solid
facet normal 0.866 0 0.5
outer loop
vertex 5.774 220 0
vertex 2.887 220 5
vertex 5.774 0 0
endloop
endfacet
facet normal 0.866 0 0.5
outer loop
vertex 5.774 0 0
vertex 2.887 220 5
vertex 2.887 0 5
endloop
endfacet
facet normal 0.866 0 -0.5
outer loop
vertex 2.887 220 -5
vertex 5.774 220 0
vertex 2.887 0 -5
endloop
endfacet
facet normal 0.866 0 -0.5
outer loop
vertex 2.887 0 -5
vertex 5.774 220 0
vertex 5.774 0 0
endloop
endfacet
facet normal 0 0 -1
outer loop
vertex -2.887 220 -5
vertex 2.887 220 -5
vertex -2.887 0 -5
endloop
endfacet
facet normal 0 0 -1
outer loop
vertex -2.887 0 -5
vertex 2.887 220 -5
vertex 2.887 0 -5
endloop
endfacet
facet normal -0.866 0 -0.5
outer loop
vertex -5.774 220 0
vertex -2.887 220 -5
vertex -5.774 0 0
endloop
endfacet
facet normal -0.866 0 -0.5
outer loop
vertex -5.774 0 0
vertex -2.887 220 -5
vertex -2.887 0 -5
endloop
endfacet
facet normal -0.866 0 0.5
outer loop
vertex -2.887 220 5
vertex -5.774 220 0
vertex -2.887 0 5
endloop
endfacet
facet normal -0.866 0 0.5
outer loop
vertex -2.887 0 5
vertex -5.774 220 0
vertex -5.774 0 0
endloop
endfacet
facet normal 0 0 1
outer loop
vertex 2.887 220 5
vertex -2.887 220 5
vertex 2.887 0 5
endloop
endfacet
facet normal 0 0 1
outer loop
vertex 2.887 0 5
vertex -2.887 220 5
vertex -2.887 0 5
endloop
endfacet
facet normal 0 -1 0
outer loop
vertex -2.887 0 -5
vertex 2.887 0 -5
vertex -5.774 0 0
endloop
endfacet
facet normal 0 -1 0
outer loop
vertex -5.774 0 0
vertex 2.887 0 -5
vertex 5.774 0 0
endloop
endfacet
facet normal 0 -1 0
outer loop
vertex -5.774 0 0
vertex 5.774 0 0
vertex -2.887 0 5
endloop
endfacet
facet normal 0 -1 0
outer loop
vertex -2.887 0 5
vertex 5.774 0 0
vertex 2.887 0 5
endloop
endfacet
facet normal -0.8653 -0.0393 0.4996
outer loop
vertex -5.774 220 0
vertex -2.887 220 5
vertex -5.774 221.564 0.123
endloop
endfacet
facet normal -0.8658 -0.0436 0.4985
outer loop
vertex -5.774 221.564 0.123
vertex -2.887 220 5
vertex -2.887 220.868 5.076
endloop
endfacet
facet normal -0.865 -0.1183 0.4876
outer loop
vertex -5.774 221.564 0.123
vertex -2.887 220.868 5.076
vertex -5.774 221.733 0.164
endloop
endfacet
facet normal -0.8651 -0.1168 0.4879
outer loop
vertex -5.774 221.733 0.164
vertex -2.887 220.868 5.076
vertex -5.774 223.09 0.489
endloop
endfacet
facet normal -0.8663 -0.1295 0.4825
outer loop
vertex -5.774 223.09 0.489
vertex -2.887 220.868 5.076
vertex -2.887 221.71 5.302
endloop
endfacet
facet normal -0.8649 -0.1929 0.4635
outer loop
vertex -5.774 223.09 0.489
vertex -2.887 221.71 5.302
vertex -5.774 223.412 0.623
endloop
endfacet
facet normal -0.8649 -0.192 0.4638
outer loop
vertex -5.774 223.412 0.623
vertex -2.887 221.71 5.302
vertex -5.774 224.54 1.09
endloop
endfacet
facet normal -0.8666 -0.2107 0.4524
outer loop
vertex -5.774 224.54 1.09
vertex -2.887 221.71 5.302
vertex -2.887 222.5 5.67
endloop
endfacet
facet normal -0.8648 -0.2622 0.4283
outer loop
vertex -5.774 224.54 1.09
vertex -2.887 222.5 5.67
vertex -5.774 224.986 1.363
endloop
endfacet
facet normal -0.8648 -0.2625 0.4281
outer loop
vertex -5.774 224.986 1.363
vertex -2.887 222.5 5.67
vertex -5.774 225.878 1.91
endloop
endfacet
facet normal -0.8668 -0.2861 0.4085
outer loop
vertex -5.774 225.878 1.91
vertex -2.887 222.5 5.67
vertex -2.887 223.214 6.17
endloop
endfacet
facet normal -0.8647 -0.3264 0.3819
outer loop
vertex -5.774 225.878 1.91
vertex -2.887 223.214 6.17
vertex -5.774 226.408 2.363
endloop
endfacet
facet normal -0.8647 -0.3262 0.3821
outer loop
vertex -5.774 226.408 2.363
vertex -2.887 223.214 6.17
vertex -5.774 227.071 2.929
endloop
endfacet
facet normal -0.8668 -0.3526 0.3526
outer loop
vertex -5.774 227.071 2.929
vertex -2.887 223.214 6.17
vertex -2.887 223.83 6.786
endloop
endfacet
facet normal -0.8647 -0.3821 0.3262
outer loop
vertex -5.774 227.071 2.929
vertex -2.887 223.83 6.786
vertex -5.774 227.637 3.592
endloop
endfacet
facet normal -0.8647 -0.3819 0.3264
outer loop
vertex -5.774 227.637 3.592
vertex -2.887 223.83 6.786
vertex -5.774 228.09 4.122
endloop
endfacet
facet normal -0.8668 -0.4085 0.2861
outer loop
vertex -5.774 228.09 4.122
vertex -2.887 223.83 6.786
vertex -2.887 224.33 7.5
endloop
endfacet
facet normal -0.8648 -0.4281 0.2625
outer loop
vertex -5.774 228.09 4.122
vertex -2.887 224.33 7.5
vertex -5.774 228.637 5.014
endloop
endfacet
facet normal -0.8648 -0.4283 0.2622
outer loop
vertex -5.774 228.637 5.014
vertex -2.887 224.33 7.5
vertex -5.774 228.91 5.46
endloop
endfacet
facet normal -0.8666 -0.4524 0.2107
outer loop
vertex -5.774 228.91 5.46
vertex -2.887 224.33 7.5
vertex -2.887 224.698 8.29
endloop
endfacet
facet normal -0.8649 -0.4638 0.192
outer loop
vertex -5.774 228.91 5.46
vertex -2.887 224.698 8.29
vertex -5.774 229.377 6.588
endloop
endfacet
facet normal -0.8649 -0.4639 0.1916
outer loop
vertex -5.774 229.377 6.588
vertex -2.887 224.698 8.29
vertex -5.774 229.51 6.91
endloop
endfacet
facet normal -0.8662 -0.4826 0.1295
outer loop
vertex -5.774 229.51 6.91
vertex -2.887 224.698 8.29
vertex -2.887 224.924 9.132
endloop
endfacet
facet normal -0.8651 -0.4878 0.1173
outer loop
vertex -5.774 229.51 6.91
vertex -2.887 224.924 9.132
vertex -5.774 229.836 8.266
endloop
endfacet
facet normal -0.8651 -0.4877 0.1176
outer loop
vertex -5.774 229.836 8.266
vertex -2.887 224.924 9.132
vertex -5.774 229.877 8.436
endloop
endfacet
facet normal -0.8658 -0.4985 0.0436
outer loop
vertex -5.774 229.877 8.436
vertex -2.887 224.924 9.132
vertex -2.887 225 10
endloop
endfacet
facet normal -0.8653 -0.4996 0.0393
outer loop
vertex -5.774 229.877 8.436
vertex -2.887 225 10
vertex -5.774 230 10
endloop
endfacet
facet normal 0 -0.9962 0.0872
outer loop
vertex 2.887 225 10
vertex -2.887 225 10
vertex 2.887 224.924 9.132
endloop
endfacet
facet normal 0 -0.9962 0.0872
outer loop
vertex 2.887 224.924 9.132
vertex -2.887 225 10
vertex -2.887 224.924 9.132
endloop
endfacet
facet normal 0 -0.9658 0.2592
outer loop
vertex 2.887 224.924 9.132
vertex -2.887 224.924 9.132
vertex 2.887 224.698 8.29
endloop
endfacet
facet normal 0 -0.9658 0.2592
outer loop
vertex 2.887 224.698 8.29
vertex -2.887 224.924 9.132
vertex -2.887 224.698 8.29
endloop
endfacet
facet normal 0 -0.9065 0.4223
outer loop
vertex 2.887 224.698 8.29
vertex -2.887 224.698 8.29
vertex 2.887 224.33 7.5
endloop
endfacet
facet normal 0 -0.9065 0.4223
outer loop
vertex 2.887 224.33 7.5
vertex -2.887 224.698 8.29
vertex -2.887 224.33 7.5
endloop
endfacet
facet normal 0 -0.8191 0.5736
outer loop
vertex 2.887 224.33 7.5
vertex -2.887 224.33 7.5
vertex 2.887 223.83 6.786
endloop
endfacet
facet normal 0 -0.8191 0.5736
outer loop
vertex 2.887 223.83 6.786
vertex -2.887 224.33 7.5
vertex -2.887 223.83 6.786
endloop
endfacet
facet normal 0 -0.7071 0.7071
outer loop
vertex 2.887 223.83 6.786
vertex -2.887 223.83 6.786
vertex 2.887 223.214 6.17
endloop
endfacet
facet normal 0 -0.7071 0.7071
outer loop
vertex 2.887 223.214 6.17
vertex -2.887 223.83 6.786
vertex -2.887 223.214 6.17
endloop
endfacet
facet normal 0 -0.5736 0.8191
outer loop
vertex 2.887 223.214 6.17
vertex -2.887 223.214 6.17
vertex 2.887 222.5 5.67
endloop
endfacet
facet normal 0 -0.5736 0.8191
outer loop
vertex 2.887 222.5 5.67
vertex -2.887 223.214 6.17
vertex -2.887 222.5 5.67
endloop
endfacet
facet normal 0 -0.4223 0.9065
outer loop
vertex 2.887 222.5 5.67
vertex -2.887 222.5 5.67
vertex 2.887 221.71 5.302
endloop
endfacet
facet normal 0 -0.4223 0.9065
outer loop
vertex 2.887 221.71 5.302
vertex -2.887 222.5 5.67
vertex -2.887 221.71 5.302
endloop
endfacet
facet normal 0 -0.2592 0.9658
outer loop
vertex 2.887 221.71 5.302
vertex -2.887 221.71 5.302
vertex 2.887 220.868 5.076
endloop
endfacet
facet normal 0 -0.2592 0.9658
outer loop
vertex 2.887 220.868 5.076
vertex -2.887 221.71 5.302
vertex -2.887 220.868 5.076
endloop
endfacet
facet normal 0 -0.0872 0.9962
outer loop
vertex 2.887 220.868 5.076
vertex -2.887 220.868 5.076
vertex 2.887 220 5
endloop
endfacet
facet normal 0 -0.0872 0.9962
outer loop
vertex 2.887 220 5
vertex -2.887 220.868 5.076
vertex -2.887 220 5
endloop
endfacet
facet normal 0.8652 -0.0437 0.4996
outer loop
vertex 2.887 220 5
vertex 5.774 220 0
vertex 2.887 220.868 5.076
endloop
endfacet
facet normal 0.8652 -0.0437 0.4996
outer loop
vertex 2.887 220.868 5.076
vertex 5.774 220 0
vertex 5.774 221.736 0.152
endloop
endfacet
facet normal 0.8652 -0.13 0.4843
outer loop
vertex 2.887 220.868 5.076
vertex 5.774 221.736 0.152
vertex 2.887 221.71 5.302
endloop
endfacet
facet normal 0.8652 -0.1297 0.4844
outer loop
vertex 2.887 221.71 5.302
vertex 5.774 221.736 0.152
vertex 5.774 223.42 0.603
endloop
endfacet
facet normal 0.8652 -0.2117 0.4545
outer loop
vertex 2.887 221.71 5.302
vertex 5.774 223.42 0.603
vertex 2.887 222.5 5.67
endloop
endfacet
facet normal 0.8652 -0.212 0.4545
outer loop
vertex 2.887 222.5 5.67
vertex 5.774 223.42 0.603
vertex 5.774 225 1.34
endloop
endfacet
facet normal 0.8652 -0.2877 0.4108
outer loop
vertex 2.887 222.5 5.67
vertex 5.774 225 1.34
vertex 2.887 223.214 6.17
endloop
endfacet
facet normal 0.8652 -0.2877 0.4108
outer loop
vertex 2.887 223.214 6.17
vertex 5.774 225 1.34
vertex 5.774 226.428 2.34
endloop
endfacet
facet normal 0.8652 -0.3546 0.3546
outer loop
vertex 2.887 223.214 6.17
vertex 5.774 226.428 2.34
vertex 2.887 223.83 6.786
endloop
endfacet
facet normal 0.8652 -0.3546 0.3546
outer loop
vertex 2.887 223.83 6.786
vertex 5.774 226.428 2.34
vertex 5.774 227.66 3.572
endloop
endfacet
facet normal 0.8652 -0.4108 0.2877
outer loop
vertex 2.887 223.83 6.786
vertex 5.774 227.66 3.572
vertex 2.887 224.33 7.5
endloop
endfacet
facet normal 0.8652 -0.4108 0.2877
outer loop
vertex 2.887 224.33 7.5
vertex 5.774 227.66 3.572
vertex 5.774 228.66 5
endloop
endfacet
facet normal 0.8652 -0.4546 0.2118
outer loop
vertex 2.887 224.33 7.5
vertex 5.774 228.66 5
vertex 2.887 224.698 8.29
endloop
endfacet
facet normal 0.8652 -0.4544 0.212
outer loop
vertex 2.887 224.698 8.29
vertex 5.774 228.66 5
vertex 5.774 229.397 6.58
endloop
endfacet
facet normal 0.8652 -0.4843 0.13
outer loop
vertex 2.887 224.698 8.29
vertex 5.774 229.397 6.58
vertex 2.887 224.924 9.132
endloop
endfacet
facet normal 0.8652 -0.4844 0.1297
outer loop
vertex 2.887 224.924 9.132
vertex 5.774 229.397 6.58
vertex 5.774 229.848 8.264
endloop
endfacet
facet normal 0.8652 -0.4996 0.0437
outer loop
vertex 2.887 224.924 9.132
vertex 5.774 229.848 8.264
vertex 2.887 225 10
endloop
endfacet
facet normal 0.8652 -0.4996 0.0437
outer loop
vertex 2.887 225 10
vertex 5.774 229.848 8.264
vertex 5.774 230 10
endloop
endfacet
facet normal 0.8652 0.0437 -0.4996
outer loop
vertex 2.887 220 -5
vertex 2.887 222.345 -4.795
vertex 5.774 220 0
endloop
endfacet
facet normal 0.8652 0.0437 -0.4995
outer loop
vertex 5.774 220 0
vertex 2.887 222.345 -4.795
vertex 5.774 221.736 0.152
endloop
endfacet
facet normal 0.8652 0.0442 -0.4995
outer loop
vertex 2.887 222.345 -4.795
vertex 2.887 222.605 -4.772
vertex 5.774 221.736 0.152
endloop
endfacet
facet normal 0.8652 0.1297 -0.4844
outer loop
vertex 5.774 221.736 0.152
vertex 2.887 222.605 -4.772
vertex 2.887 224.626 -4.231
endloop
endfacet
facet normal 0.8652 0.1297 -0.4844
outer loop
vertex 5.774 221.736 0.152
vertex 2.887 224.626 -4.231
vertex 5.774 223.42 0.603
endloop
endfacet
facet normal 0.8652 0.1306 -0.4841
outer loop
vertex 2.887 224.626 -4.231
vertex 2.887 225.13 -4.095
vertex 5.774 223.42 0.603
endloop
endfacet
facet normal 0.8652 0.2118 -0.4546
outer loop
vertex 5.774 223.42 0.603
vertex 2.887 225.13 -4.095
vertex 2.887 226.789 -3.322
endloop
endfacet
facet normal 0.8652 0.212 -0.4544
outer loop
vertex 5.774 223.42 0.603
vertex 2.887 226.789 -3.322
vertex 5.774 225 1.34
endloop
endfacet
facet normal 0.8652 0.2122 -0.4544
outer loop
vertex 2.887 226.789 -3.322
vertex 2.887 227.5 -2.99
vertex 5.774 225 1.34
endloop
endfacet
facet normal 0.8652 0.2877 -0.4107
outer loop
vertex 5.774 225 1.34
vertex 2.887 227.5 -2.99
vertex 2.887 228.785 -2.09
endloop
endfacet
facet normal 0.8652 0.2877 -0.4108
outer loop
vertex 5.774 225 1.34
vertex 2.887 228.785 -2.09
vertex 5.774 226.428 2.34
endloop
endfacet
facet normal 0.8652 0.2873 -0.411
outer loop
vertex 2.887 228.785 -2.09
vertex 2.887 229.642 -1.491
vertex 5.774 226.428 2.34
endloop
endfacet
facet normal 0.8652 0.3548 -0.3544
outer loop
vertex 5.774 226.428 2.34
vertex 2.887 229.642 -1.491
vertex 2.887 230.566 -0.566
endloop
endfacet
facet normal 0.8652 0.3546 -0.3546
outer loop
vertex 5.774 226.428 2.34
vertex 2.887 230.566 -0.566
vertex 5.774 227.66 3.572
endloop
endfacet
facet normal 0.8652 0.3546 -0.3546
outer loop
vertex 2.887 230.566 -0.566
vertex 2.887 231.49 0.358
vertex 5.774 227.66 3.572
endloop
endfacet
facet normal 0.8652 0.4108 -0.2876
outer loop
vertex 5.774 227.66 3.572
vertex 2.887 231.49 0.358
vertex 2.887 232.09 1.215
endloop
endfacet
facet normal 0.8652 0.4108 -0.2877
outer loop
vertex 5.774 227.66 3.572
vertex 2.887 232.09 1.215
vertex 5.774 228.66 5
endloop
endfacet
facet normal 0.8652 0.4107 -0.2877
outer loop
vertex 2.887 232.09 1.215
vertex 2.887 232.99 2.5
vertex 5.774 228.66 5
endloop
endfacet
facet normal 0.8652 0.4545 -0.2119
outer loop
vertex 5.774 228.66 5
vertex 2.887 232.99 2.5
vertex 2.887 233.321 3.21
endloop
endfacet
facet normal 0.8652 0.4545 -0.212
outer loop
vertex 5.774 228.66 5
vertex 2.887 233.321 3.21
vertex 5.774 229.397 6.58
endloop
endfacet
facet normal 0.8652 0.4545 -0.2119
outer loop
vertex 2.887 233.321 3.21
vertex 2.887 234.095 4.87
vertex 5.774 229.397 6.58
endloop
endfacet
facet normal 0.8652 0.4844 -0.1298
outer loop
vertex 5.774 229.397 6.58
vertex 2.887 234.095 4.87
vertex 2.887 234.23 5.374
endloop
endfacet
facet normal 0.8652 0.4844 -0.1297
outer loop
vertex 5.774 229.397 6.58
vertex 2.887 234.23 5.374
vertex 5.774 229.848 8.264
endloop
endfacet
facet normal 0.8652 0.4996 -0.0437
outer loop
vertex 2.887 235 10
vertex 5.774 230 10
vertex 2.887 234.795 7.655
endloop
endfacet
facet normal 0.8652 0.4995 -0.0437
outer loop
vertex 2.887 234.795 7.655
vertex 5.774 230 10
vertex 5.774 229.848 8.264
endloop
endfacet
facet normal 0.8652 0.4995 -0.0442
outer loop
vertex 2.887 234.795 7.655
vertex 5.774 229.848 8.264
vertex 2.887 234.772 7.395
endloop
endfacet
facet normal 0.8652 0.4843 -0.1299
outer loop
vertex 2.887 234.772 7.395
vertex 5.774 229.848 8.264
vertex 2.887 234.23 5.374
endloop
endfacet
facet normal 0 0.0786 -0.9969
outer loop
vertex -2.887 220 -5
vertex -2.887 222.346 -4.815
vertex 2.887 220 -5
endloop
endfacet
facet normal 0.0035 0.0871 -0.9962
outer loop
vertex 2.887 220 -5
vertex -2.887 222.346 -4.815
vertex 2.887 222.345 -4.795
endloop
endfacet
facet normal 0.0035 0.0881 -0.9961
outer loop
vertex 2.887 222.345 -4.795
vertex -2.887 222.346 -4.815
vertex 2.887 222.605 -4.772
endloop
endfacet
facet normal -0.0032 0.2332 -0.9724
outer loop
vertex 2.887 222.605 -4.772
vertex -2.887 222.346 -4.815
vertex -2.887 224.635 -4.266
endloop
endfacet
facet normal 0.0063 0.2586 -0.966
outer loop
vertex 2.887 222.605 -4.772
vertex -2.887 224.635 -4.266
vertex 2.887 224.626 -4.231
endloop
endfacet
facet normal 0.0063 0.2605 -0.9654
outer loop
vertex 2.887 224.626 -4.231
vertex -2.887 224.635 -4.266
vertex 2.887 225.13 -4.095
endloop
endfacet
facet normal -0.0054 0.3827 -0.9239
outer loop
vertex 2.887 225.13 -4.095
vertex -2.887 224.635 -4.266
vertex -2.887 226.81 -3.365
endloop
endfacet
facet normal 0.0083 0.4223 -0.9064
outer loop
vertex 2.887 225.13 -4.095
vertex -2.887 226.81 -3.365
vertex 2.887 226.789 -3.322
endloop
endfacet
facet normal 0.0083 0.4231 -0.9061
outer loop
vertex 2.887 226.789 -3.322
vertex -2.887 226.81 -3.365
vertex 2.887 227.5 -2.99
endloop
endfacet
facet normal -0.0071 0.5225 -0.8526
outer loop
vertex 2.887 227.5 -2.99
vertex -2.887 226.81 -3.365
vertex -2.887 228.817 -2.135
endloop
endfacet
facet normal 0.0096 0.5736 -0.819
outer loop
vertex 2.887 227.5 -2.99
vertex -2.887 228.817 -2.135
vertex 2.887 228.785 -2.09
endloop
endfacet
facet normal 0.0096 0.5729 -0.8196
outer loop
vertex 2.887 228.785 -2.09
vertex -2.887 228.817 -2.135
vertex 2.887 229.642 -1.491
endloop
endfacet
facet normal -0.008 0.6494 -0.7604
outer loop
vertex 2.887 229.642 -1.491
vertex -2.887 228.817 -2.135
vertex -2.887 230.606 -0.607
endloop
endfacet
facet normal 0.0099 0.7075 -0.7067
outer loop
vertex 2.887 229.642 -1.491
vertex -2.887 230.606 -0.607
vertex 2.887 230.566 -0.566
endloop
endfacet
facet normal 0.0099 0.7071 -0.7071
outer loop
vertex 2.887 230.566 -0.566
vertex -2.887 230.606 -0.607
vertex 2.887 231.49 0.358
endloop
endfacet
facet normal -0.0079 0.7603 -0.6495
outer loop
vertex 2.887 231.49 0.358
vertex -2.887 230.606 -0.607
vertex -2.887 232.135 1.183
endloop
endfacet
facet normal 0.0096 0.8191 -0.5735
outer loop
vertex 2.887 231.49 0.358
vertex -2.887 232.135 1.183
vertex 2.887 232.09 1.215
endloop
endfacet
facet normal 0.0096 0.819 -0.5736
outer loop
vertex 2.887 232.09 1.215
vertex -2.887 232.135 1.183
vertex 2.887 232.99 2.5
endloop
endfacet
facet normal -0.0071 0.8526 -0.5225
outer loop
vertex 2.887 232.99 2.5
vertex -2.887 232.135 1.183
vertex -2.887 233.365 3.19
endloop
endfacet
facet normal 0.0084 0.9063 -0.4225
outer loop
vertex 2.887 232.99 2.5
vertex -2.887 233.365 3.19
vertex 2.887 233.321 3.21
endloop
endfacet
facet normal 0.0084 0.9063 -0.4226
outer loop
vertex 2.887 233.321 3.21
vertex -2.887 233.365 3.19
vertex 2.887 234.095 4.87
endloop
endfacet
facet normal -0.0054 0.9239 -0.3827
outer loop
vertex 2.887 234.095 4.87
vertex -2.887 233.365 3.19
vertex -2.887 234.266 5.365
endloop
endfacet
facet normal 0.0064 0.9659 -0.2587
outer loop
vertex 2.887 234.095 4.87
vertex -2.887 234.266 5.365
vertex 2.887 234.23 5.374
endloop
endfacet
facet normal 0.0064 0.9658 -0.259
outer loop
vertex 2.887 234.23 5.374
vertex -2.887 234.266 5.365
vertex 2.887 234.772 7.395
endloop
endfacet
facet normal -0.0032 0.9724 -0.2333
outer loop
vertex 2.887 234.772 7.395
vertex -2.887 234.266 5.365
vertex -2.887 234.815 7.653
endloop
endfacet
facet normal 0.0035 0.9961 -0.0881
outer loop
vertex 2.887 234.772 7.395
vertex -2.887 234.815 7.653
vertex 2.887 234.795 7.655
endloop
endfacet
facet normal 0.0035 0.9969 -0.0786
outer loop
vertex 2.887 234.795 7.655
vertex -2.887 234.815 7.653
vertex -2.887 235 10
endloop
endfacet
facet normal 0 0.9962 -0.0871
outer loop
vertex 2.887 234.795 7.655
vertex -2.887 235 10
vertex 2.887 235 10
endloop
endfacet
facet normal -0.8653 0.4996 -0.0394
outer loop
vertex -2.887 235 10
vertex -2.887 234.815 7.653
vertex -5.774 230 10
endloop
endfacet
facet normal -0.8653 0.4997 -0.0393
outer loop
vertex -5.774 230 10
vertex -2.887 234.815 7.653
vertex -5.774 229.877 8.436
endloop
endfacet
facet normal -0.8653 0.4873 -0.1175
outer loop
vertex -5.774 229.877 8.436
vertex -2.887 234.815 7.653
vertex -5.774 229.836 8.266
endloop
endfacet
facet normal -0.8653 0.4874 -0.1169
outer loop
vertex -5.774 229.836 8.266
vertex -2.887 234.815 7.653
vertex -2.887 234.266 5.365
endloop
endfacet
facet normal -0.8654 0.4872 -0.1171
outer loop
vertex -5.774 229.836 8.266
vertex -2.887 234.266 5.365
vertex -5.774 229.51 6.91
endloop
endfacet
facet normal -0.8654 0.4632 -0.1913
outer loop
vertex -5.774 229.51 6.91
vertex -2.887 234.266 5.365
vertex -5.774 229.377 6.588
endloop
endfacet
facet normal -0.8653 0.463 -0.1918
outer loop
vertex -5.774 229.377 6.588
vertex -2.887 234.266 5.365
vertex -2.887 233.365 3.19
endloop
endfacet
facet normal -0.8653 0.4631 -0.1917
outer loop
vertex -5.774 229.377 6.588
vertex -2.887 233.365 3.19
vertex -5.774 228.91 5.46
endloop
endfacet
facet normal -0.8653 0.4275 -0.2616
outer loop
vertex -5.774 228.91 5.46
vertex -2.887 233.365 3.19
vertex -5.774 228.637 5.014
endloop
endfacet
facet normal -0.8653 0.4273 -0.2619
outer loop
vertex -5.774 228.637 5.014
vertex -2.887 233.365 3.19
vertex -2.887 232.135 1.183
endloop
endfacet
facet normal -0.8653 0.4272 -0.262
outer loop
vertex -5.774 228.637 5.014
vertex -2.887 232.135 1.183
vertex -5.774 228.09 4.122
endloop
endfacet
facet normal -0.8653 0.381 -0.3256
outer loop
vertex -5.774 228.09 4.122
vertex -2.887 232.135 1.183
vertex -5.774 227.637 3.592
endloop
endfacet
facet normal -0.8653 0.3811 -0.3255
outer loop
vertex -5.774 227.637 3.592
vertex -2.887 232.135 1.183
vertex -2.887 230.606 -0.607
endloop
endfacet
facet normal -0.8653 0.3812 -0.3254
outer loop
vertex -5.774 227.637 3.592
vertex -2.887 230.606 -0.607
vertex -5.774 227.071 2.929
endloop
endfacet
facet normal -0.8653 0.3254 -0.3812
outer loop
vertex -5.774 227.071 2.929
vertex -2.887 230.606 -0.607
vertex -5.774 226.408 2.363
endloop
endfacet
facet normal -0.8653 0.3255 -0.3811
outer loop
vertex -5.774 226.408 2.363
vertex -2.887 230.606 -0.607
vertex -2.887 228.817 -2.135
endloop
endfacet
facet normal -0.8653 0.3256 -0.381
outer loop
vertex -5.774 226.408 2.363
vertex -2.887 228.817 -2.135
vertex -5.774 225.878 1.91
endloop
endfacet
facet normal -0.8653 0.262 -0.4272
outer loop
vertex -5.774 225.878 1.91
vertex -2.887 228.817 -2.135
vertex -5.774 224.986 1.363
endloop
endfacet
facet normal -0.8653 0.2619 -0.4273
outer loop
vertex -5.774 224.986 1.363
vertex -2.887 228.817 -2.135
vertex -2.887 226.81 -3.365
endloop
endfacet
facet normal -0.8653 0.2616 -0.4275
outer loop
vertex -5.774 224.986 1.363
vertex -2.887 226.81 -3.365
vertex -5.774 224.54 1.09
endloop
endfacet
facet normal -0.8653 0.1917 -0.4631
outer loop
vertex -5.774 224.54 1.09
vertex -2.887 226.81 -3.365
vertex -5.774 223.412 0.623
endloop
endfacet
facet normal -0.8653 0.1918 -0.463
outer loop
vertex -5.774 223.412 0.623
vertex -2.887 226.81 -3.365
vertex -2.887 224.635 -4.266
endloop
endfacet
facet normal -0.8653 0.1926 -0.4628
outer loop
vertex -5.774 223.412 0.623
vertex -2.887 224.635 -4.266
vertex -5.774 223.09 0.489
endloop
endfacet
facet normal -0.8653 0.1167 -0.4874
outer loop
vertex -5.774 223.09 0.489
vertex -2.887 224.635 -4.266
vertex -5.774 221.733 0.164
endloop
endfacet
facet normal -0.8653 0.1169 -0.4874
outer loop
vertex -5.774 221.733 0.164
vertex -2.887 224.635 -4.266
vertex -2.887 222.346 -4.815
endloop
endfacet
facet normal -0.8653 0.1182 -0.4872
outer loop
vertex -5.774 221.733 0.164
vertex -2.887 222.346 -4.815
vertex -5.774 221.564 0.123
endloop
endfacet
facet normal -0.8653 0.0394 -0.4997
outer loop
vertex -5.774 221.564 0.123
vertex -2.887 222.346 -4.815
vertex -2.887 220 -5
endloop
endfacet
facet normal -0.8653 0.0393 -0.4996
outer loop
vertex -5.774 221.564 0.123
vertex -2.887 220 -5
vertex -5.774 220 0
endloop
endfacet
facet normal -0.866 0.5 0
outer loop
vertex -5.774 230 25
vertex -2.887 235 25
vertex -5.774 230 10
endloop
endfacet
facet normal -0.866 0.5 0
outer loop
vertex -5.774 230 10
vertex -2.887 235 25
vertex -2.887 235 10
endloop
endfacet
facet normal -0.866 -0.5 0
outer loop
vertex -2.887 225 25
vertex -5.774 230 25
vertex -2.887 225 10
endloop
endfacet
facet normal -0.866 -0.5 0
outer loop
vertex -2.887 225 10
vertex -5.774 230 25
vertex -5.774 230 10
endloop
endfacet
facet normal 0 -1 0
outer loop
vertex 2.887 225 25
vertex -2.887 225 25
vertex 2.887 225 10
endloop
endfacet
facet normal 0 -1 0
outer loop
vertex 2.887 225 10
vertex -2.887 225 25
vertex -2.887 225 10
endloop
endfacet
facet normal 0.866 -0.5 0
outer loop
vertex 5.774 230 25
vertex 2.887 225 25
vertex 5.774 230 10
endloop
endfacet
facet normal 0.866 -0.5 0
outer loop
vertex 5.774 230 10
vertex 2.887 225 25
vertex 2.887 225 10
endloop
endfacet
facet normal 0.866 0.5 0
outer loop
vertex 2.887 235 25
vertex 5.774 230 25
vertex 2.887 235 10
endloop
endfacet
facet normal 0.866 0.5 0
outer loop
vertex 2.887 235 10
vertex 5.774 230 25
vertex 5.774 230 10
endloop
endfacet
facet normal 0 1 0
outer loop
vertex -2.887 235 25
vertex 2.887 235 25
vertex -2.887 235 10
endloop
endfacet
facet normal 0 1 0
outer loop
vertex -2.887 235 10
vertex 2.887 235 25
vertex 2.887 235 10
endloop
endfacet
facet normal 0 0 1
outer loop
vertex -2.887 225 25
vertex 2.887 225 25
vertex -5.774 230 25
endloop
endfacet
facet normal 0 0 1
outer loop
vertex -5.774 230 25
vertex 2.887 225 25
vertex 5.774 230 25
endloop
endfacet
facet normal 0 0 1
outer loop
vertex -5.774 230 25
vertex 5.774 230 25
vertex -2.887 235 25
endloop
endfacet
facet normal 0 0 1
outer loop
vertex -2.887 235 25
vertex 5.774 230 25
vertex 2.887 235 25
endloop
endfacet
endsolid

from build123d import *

# Parameters (mm, degrees)
BOSS_EXTRUDE1_DEPTH = 220
REVOLVE1_ANGLE      = 90
BOSS_EXTRUDE2_DEPTH = 15


with BuildPart() as part:
    # Sketch1 → Boss-Extrude1 (new body)
    with BuildSketch(Plane(origin=(0, 0, 0), x_dir=(1, 0, 0), z_dir=(0, 1, 0))):
        Polygon((5.773502692, 0), (2.886751346, 5), (-2.886751346, 5), (-5.773502692, 0), (-2.886751346, -5), (2.886751346, -5), align=None)
    extrude(amount=BOSS_EXTRUDE1_DEPTH)

    # Sketch2 → Revolve1 (revolve)
    with BuildSketch(Plane(origin=(0, 220, 0), x_dir=(1, 0, 0), z_dir=(0, 1, 0))):
        Polygon((-2.886751346, -5), (2.886751346, -5), (5.773502692, 0), (2.886751346, 5), (-2.886751346, 5), (-5.773502692, 0), align=None)
    revolve(axis=Axis((-6.610252502, 220, 10), (1, 0, 0)), revolution_arc=REVOLVE1_ANGLE)

    # Sketch3 → Boss-Extrude2 (add)
    with BuildSketch(Plane.XY.offset(10)):
        Polygon((-5.773502692, 230), (-2.886751346, 225), (2.886751346, 225), (5.773502692, 230), (2.886751346, 235), (-2.886751346, 235), align=None)
    extrude(amount=BOSS_EXTRUDE2_DEPTH)


solid = part.part
